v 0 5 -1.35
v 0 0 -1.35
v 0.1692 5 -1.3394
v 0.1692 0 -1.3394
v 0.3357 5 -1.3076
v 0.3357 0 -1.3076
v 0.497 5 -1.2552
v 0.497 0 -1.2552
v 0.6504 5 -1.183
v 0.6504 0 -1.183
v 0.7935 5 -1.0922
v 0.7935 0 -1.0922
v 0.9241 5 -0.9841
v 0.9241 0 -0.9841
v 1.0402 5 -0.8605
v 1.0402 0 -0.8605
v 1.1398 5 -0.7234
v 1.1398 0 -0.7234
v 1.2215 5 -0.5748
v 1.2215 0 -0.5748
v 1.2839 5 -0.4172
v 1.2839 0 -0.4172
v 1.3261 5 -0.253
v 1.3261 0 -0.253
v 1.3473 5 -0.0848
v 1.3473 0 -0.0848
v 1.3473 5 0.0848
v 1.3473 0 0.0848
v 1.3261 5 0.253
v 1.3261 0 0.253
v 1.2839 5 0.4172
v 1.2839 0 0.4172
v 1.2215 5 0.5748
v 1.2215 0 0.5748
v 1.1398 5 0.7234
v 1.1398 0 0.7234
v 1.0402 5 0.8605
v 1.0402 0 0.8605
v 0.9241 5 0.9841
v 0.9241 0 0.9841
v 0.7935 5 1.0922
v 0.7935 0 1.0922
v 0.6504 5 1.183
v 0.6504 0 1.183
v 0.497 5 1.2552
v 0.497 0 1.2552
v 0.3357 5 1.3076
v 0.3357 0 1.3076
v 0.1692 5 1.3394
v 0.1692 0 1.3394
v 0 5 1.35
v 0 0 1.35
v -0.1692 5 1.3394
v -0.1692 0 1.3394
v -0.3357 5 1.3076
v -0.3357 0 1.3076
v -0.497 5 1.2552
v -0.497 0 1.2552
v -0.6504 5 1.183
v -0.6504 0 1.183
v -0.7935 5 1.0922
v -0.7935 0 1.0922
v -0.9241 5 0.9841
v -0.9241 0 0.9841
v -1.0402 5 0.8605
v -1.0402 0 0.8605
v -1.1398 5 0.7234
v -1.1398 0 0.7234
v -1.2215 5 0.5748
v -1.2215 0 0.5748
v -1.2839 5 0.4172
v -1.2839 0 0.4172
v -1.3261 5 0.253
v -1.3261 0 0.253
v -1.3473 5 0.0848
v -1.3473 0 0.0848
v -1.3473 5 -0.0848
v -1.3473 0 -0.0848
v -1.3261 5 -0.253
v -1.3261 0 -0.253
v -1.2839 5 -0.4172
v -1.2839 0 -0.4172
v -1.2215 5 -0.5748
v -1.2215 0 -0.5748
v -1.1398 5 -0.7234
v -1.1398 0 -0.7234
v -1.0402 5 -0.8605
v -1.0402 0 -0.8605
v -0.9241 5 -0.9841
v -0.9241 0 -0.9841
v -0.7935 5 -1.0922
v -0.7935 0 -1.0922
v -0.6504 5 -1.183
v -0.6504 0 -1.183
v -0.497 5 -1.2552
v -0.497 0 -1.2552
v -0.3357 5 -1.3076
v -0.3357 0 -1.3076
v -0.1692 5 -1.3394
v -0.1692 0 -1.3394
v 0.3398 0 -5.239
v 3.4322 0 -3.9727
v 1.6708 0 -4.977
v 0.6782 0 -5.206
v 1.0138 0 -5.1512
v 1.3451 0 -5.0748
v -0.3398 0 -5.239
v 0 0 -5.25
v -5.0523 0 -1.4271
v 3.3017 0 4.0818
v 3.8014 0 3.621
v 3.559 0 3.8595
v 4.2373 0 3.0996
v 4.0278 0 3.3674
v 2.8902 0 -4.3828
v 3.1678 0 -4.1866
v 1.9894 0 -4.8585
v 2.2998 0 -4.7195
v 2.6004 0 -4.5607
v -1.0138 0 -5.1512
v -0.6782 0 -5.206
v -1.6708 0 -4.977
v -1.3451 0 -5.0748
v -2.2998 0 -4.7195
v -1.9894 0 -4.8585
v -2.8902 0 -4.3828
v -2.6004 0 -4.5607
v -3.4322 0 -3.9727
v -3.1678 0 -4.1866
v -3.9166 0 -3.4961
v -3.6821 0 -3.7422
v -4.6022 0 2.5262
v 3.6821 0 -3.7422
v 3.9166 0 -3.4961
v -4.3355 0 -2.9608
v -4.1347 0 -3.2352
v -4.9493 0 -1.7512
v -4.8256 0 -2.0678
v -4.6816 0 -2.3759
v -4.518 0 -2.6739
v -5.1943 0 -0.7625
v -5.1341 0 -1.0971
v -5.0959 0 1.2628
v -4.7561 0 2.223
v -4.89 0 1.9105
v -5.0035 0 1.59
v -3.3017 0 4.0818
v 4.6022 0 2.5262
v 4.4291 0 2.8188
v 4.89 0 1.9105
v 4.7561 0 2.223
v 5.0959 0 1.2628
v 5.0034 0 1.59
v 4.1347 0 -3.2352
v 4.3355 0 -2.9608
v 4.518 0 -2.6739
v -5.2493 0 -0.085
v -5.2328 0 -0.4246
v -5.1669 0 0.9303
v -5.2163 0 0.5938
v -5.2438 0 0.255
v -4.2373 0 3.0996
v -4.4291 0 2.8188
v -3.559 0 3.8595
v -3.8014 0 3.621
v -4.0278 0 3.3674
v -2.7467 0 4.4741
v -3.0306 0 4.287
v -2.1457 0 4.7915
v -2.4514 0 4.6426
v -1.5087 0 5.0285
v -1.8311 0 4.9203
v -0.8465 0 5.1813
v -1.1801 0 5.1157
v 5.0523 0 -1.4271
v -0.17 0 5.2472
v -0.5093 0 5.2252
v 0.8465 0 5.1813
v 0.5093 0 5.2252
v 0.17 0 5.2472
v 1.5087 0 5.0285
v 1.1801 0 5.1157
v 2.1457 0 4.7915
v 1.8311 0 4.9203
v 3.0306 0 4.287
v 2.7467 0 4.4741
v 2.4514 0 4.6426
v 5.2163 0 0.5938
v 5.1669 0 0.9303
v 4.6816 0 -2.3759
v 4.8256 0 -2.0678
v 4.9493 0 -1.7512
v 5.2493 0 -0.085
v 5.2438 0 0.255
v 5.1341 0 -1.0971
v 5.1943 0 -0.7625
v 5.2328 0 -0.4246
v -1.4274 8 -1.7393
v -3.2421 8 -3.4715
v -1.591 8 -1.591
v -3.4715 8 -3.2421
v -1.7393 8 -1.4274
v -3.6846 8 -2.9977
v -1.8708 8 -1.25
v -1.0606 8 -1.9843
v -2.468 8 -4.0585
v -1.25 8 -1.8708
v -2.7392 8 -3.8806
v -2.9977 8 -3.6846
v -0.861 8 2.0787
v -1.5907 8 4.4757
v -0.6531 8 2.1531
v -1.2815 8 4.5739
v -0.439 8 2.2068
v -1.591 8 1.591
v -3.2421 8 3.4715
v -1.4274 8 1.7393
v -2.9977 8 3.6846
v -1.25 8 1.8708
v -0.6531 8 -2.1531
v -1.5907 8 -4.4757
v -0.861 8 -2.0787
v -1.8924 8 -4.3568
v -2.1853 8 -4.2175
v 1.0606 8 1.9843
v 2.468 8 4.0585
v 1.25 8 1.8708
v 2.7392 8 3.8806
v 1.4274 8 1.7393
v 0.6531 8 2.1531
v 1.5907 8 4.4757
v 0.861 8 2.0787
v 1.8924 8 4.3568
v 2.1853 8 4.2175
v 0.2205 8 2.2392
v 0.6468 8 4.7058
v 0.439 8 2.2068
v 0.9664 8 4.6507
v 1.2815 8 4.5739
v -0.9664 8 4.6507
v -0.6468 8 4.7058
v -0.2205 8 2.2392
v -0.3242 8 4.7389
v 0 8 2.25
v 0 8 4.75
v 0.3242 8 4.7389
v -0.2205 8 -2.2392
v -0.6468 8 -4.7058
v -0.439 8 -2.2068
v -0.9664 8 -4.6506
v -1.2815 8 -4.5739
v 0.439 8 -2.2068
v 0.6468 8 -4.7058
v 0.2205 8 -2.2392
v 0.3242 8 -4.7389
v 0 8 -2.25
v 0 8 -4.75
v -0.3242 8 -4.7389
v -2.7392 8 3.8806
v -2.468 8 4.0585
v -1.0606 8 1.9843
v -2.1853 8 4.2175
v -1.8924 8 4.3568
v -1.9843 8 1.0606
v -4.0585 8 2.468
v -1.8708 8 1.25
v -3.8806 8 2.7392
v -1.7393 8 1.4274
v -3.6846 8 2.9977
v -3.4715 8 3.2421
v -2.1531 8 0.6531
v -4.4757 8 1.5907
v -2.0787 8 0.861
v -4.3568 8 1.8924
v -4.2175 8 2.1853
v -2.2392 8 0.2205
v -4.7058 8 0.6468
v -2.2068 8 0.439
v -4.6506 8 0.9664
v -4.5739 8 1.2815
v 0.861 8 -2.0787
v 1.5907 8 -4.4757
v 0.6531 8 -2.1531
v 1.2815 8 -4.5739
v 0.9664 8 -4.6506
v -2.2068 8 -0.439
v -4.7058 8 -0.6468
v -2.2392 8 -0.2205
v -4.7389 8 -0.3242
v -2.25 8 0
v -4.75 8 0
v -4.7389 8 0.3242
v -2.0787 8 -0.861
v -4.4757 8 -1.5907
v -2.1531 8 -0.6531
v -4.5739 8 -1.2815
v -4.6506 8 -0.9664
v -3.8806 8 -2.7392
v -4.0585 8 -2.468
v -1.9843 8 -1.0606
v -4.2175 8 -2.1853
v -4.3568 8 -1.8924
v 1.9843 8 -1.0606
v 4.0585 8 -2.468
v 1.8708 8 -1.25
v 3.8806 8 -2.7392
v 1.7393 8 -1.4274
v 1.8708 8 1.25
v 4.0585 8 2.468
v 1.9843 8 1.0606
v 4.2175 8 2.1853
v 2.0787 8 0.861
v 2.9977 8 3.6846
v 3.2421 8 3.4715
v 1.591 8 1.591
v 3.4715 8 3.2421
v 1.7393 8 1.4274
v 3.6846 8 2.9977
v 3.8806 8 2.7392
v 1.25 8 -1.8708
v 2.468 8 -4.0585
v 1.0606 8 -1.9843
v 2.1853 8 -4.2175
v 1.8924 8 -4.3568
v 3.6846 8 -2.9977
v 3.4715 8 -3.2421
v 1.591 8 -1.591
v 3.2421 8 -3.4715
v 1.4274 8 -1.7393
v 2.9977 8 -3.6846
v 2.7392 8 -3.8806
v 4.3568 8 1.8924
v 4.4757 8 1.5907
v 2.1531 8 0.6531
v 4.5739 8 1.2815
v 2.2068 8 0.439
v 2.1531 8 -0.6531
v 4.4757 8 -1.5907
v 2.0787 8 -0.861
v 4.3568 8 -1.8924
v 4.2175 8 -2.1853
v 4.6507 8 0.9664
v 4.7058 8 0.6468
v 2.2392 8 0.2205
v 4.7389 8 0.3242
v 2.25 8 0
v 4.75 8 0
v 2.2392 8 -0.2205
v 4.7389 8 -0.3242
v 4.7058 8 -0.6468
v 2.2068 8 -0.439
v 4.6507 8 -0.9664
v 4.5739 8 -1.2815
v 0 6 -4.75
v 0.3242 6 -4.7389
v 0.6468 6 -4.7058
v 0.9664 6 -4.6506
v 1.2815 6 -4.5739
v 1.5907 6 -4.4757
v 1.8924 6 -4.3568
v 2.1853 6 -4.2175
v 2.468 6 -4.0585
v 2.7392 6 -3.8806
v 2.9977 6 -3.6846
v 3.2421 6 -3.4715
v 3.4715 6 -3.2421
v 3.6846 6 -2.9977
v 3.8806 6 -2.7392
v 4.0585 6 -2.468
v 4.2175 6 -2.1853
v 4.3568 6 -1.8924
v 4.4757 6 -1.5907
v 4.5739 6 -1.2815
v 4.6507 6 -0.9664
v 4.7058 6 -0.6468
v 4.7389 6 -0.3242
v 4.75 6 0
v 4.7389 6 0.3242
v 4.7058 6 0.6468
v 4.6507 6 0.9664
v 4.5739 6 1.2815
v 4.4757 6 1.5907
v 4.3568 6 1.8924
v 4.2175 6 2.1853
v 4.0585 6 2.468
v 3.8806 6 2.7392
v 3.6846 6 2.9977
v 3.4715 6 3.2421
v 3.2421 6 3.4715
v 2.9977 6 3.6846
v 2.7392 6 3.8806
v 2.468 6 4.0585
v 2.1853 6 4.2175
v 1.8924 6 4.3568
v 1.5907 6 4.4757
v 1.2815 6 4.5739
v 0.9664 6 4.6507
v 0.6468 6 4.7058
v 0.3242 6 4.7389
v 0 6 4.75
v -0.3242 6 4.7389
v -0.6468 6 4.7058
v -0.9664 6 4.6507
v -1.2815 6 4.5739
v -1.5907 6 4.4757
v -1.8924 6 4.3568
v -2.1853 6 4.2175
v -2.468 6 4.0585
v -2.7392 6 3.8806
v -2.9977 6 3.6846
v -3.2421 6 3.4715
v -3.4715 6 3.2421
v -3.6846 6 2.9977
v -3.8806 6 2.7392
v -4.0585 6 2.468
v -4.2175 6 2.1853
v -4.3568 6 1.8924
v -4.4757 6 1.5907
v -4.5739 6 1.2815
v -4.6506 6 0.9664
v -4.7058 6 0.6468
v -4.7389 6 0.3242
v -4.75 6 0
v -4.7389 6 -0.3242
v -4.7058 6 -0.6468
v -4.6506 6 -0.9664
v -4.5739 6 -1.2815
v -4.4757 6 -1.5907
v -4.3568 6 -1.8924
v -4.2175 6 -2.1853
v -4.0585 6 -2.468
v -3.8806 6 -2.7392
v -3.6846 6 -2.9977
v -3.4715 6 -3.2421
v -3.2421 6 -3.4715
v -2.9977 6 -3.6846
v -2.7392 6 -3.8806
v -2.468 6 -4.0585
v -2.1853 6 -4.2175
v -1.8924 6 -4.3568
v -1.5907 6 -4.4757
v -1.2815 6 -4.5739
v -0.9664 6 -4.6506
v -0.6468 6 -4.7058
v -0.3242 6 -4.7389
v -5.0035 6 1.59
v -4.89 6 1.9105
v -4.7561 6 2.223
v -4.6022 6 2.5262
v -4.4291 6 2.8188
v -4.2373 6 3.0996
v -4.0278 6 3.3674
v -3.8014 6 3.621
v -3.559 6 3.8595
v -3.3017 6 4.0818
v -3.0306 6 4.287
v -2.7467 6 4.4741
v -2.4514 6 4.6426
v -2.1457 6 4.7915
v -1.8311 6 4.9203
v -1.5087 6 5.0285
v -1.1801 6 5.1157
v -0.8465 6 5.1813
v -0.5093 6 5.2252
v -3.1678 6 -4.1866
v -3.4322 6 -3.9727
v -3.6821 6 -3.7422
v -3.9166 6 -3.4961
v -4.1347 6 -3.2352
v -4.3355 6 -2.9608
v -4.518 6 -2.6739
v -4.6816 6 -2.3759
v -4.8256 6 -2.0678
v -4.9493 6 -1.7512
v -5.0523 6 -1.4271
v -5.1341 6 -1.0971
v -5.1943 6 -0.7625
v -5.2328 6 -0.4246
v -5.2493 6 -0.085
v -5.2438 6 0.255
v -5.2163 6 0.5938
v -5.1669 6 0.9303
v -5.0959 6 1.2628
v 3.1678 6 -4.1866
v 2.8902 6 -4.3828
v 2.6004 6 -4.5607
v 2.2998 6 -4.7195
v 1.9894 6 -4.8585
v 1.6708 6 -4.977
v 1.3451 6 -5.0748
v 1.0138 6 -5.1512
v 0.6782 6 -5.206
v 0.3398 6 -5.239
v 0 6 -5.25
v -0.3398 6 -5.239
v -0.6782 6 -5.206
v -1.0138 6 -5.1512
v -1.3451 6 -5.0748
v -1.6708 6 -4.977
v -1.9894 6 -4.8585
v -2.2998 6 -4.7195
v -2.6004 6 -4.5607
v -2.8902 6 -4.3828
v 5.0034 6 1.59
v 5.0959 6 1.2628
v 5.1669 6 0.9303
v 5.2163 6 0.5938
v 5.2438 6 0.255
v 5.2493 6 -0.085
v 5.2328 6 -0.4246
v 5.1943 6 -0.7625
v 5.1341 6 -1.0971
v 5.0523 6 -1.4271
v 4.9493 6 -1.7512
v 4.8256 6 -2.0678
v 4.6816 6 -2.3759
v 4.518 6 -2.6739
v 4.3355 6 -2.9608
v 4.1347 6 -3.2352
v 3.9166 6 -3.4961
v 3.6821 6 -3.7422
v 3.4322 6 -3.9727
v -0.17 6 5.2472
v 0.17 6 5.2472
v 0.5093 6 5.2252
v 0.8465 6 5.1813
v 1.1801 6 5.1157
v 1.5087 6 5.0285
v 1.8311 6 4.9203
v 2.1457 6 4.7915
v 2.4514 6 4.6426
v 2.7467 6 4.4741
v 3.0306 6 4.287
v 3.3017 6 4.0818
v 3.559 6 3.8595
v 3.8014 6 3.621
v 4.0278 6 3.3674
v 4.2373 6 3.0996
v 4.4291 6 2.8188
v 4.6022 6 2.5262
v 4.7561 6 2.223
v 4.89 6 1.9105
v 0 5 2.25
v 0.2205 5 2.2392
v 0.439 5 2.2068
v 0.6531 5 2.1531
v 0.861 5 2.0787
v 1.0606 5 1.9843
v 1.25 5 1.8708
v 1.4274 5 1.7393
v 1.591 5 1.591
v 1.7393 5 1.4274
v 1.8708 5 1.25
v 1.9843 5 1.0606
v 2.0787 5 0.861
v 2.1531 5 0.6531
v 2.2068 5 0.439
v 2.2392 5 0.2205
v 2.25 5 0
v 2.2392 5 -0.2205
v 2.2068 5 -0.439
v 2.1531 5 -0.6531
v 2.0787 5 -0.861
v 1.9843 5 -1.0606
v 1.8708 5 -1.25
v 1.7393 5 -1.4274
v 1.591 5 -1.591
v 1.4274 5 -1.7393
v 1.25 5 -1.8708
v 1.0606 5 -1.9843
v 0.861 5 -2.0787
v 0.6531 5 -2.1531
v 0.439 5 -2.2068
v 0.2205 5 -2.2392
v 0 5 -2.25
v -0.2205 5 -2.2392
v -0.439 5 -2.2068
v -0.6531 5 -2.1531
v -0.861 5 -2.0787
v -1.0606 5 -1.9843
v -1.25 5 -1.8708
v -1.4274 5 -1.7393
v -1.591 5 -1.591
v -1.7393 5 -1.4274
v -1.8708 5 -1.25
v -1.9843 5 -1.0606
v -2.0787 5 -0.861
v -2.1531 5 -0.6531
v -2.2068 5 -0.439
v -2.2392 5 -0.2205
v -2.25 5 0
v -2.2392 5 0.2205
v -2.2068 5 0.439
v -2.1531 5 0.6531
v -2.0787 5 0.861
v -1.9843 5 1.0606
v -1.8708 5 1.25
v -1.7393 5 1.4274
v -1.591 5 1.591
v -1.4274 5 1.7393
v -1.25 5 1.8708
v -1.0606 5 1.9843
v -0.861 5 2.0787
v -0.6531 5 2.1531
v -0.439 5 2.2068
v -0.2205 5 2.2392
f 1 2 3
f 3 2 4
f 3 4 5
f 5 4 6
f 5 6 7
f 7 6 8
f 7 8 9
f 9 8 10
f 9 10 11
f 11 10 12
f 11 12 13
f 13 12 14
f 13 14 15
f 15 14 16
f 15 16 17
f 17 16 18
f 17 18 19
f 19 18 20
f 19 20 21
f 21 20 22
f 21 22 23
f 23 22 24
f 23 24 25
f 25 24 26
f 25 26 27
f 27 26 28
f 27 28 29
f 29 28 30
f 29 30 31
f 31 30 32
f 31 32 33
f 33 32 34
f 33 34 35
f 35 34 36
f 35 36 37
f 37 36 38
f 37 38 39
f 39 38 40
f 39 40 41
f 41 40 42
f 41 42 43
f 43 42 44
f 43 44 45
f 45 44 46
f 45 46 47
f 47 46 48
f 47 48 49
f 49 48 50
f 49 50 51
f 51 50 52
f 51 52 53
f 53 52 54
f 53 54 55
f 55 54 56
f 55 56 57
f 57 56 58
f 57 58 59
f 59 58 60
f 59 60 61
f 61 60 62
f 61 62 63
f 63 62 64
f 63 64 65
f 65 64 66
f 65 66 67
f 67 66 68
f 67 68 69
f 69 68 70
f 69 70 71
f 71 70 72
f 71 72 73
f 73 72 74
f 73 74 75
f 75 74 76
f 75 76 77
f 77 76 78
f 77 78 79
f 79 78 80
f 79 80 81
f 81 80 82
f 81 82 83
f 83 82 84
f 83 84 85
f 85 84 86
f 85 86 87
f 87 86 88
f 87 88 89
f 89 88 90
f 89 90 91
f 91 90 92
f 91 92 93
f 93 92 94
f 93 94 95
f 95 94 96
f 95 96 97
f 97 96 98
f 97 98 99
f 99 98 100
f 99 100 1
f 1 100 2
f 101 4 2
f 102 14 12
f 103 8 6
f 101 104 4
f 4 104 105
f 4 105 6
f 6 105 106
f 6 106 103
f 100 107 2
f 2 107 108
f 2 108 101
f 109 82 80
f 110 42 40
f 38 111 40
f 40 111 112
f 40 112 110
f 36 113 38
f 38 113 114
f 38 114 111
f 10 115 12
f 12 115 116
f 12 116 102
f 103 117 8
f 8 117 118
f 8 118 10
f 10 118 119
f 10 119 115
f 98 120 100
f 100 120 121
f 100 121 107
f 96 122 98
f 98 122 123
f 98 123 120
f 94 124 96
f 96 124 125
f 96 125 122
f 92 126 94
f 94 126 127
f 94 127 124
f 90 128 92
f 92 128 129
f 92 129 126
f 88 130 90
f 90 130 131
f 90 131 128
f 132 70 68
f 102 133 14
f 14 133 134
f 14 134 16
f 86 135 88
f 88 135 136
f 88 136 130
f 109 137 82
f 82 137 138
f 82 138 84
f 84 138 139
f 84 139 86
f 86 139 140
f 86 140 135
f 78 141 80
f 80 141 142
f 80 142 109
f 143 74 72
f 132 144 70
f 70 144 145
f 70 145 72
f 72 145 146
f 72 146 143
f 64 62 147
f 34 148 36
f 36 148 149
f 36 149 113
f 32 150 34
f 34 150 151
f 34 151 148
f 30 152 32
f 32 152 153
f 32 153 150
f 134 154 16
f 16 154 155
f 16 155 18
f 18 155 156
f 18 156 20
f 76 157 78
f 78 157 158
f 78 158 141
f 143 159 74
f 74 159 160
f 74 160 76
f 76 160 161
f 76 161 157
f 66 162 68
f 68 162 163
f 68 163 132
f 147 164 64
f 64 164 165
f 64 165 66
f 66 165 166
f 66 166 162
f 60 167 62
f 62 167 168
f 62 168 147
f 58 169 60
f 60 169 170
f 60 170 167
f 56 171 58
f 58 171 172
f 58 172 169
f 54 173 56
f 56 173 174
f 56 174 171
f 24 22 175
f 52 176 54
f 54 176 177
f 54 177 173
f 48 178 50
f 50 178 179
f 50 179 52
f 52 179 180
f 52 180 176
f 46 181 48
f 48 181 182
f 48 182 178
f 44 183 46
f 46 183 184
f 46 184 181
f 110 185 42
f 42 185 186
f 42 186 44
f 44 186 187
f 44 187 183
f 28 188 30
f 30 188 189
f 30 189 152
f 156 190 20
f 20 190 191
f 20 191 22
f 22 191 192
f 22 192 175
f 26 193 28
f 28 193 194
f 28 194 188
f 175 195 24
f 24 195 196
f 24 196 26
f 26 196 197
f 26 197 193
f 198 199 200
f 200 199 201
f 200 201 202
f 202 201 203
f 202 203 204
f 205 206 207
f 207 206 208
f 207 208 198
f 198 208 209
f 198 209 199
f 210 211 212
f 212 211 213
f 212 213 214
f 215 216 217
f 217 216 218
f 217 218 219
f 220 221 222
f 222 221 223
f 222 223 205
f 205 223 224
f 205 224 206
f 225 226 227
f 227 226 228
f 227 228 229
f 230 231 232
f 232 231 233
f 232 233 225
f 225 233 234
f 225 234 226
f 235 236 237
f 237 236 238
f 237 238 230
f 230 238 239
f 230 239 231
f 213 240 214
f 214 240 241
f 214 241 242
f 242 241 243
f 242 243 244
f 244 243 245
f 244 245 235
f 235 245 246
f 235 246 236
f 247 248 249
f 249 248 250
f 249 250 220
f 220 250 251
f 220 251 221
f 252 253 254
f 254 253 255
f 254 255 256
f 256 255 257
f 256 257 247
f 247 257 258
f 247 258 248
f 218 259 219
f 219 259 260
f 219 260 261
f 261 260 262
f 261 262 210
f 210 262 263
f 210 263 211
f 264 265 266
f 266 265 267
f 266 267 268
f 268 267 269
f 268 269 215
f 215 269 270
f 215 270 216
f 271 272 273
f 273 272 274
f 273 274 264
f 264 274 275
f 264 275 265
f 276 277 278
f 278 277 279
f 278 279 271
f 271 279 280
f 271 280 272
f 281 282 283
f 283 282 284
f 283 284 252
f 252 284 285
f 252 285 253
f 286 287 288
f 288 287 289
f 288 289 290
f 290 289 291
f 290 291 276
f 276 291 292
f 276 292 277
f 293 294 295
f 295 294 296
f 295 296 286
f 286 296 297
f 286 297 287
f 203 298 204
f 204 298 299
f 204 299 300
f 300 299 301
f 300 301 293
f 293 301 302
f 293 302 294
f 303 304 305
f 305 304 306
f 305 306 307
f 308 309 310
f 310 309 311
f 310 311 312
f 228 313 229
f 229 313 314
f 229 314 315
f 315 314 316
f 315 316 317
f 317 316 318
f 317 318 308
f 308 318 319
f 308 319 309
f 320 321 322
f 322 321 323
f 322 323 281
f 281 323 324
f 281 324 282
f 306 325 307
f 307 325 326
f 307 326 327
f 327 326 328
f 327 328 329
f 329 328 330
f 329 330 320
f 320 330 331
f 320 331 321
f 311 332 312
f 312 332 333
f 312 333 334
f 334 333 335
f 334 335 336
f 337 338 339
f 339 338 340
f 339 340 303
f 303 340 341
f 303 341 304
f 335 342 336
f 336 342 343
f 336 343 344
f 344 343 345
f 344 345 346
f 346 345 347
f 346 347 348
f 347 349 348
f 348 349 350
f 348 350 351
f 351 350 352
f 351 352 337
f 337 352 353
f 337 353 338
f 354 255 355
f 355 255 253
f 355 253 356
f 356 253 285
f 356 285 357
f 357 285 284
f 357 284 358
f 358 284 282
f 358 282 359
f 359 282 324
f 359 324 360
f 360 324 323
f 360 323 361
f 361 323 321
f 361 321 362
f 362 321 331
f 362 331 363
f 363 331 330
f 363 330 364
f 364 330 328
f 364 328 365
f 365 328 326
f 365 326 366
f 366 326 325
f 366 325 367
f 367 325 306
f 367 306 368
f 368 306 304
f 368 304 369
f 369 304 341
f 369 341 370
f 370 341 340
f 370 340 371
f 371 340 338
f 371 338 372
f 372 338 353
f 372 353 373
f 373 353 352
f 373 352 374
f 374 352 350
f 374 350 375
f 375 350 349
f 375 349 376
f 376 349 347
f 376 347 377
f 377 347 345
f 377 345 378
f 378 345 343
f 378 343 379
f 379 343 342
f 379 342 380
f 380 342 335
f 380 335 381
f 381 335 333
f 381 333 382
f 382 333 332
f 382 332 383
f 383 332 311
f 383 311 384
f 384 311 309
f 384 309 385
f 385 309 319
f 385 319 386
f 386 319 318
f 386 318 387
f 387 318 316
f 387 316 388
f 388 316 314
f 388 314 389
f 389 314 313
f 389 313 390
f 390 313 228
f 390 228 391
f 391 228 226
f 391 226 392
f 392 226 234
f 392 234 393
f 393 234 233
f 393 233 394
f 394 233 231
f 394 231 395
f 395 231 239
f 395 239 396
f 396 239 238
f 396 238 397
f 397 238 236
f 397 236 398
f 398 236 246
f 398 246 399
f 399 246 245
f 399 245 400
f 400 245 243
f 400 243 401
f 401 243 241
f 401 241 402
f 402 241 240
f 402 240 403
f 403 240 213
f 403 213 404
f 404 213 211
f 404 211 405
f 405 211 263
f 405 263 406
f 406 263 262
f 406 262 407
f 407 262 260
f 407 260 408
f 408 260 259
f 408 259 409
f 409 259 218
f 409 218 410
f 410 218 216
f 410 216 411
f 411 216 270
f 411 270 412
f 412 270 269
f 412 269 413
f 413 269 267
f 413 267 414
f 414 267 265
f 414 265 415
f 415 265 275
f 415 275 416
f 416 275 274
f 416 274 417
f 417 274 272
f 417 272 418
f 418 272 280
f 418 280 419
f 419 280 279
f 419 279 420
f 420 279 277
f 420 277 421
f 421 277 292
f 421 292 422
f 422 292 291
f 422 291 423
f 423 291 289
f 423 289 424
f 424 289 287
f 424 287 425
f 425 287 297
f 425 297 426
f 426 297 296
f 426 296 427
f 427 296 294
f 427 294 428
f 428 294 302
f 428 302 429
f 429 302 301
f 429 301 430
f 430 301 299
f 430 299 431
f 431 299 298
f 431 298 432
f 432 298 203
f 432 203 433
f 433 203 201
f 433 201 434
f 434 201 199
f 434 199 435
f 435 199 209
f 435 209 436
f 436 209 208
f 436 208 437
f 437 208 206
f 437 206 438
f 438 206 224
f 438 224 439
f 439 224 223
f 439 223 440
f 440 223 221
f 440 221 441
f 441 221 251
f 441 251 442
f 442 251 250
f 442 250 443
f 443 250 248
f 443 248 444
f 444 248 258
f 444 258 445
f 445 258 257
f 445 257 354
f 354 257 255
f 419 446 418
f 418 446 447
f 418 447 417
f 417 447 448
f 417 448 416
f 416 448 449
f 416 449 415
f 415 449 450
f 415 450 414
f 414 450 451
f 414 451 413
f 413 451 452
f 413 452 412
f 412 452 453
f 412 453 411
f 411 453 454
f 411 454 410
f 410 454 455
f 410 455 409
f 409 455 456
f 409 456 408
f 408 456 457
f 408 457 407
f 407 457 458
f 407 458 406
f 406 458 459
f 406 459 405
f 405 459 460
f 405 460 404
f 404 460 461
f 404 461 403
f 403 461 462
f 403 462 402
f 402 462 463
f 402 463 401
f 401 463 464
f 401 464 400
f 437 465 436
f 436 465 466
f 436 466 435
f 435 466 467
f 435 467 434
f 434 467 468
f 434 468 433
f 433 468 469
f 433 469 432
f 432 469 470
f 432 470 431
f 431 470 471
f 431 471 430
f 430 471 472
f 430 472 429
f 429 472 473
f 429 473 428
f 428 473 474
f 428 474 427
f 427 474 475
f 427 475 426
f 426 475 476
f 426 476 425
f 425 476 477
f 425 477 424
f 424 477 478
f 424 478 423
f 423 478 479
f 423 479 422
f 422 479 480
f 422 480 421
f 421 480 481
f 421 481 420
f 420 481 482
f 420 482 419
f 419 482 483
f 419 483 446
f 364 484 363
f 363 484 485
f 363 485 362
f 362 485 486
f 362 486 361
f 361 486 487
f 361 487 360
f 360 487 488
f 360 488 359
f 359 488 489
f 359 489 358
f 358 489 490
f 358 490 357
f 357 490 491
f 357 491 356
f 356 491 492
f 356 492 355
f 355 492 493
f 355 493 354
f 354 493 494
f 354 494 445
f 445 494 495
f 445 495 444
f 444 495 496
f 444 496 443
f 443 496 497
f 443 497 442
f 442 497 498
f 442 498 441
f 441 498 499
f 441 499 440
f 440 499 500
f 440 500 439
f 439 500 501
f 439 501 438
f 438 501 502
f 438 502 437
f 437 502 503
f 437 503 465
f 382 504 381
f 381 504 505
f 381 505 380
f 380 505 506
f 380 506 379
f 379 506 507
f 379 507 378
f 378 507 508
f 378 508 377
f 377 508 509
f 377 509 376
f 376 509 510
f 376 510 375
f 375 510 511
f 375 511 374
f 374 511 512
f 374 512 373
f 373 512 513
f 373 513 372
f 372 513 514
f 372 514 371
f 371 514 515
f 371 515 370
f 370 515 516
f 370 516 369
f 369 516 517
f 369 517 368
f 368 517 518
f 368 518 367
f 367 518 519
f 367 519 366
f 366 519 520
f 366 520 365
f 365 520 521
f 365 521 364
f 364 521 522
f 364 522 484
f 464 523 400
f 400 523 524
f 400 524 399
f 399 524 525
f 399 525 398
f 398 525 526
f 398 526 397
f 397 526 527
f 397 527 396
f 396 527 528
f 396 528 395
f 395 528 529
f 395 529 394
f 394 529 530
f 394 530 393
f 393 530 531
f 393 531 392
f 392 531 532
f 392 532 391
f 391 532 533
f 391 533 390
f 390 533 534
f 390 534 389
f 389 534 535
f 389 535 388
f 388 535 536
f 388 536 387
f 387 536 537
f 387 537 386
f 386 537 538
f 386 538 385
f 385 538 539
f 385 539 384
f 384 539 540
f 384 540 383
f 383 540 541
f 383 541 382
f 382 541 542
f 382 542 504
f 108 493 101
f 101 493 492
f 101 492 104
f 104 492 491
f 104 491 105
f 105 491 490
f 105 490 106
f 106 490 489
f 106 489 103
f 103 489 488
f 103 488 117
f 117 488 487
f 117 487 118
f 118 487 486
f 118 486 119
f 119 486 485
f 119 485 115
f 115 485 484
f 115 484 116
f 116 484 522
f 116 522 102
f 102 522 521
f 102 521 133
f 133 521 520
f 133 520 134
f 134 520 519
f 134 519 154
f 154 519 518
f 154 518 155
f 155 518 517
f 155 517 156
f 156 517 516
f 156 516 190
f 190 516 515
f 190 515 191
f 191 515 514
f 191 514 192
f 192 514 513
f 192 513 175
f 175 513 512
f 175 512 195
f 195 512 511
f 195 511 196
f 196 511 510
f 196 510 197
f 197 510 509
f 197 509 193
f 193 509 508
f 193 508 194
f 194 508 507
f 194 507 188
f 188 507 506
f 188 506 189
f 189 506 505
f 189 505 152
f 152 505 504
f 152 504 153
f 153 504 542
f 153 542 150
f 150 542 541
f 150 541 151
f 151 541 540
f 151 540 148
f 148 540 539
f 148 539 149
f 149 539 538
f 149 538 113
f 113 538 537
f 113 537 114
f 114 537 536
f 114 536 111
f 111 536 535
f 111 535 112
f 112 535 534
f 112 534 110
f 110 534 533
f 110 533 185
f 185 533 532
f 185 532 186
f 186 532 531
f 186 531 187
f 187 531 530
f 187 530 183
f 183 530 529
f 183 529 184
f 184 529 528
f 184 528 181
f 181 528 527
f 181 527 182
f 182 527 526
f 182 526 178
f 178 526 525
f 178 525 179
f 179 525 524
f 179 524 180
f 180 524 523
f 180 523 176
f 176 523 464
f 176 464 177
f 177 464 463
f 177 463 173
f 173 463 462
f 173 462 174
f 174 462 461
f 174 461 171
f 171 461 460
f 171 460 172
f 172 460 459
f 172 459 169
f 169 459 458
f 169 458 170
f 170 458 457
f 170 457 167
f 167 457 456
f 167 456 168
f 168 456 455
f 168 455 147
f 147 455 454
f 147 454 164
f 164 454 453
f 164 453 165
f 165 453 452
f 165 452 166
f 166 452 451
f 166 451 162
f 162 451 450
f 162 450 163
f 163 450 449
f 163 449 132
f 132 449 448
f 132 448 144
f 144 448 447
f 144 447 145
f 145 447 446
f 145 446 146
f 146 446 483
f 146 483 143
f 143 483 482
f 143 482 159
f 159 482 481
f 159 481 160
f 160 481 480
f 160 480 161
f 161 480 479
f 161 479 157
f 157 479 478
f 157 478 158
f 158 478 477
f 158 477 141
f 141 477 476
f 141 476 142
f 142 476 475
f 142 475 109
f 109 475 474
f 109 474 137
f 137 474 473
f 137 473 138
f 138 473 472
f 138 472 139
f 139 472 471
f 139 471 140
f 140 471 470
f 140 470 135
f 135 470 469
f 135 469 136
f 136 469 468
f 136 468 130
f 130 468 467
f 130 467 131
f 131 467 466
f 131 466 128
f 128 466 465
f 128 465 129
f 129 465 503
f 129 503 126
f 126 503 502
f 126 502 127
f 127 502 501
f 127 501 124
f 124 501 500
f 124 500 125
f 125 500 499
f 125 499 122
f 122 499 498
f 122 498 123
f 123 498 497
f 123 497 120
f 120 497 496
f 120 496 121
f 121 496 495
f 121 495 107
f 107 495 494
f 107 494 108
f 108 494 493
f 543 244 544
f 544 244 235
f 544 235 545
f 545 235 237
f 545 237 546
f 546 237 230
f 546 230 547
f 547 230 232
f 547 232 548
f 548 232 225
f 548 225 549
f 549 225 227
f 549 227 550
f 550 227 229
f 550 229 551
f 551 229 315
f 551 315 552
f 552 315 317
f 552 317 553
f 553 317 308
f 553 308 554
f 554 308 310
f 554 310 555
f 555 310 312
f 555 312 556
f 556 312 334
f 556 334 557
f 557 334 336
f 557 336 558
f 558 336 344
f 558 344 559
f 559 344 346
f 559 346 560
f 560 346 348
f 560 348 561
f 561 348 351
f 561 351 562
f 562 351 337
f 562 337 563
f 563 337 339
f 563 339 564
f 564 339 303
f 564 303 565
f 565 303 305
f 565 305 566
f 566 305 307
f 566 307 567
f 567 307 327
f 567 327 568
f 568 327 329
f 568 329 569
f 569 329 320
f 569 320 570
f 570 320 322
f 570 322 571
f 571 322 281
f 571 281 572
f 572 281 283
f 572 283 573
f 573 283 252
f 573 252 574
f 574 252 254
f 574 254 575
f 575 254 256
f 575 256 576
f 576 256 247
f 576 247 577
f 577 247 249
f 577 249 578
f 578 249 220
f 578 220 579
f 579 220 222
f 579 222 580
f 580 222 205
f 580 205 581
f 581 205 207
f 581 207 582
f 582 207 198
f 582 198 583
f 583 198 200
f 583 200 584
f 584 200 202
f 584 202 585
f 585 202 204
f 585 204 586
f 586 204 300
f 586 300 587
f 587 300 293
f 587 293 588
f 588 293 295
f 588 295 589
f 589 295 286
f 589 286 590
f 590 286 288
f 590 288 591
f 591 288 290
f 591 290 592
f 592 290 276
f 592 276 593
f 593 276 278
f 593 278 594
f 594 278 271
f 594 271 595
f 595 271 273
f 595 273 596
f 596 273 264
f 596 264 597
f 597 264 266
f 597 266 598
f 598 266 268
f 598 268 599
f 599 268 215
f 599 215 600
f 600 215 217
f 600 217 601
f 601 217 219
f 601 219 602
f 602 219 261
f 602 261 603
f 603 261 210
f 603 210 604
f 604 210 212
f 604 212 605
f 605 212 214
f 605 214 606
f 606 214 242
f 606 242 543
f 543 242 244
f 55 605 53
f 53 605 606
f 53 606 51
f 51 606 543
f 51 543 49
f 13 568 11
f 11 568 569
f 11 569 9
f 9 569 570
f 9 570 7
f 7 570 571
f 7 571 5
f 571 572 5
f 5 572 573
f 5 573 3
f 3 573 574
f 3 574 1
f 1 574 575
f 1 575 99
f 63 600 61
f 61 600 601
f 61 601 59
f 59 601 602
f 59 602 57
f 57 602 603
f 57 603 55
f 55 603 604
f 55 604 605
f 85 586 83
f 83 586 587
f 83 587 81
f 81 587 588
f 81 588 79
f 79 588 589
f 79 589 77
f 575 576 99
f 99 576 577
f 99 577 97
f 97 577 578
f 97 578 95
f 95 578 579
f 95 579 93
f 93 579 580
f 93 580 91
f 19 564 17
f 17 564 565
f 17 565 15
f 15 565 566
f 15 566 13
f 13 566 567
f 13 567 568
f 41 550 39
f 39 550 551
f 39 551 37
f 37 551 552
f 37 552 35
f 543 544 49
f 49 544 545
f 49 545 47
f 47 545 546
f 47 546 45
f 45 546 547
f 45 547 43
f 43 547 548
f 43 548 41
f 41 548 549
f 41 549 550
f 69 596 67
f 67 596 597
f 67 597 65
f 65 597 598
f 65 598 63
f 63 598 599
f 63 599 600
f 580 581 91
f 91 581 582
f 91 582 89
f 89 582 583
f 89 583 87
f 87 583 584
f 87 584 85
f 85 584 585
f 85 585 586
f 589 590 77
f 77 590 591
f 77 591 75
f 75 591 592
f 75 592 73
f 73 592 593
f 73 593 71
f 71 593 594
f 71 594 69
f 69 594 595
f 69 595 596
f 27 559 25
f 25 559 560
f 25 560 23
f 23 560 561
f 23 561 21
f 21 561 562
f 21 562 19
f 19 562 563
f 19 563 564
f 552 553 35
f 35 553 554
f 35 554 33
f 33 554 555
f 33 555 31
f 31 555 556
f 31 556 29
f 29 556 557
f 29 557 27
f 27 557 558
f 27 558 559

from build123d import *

# Parameters (mm, degrees)
ESQUISSE2_R             = 2.25
ENL_V_MAT_EXTRU_1_DEPTH = 3


with BuildPart() as part:
    # Esquisse1 → Révolution1 (revolve)
    with BuildSketch(Plane.XY, mode=Mode.PRIVATE) as r_volution1_sk:
        Polygon((1.35, 0), (1.35, 8), (4.75, 8), (4.75, 6), (5.25, 6), (5.25, 0), align=None)
    revolve(r_volution1_sk.sketch.rotate(Axis((0, 0, 0), (0, 1, 0)), 90), axis=Axis((0, 0, 0), (0, 1, 0)))

    # Esquisse2 → Enlèv. mat.-Extru.1 (cut)
    with BuildSketch(Plane(origin=(0, 8, 0), x_dir=(1, 0, 0), z_dir=(0, 1, 0))):
        with Locations(Location((0, 0, 0), (0, 0, 270))):
            Circle(ESQUISSE2_R)
    extrude(amount=-ENL_V_MAT_EXTRU_1_DEPTH, mode=Mode.SUBTRACT)


solid = part.part
